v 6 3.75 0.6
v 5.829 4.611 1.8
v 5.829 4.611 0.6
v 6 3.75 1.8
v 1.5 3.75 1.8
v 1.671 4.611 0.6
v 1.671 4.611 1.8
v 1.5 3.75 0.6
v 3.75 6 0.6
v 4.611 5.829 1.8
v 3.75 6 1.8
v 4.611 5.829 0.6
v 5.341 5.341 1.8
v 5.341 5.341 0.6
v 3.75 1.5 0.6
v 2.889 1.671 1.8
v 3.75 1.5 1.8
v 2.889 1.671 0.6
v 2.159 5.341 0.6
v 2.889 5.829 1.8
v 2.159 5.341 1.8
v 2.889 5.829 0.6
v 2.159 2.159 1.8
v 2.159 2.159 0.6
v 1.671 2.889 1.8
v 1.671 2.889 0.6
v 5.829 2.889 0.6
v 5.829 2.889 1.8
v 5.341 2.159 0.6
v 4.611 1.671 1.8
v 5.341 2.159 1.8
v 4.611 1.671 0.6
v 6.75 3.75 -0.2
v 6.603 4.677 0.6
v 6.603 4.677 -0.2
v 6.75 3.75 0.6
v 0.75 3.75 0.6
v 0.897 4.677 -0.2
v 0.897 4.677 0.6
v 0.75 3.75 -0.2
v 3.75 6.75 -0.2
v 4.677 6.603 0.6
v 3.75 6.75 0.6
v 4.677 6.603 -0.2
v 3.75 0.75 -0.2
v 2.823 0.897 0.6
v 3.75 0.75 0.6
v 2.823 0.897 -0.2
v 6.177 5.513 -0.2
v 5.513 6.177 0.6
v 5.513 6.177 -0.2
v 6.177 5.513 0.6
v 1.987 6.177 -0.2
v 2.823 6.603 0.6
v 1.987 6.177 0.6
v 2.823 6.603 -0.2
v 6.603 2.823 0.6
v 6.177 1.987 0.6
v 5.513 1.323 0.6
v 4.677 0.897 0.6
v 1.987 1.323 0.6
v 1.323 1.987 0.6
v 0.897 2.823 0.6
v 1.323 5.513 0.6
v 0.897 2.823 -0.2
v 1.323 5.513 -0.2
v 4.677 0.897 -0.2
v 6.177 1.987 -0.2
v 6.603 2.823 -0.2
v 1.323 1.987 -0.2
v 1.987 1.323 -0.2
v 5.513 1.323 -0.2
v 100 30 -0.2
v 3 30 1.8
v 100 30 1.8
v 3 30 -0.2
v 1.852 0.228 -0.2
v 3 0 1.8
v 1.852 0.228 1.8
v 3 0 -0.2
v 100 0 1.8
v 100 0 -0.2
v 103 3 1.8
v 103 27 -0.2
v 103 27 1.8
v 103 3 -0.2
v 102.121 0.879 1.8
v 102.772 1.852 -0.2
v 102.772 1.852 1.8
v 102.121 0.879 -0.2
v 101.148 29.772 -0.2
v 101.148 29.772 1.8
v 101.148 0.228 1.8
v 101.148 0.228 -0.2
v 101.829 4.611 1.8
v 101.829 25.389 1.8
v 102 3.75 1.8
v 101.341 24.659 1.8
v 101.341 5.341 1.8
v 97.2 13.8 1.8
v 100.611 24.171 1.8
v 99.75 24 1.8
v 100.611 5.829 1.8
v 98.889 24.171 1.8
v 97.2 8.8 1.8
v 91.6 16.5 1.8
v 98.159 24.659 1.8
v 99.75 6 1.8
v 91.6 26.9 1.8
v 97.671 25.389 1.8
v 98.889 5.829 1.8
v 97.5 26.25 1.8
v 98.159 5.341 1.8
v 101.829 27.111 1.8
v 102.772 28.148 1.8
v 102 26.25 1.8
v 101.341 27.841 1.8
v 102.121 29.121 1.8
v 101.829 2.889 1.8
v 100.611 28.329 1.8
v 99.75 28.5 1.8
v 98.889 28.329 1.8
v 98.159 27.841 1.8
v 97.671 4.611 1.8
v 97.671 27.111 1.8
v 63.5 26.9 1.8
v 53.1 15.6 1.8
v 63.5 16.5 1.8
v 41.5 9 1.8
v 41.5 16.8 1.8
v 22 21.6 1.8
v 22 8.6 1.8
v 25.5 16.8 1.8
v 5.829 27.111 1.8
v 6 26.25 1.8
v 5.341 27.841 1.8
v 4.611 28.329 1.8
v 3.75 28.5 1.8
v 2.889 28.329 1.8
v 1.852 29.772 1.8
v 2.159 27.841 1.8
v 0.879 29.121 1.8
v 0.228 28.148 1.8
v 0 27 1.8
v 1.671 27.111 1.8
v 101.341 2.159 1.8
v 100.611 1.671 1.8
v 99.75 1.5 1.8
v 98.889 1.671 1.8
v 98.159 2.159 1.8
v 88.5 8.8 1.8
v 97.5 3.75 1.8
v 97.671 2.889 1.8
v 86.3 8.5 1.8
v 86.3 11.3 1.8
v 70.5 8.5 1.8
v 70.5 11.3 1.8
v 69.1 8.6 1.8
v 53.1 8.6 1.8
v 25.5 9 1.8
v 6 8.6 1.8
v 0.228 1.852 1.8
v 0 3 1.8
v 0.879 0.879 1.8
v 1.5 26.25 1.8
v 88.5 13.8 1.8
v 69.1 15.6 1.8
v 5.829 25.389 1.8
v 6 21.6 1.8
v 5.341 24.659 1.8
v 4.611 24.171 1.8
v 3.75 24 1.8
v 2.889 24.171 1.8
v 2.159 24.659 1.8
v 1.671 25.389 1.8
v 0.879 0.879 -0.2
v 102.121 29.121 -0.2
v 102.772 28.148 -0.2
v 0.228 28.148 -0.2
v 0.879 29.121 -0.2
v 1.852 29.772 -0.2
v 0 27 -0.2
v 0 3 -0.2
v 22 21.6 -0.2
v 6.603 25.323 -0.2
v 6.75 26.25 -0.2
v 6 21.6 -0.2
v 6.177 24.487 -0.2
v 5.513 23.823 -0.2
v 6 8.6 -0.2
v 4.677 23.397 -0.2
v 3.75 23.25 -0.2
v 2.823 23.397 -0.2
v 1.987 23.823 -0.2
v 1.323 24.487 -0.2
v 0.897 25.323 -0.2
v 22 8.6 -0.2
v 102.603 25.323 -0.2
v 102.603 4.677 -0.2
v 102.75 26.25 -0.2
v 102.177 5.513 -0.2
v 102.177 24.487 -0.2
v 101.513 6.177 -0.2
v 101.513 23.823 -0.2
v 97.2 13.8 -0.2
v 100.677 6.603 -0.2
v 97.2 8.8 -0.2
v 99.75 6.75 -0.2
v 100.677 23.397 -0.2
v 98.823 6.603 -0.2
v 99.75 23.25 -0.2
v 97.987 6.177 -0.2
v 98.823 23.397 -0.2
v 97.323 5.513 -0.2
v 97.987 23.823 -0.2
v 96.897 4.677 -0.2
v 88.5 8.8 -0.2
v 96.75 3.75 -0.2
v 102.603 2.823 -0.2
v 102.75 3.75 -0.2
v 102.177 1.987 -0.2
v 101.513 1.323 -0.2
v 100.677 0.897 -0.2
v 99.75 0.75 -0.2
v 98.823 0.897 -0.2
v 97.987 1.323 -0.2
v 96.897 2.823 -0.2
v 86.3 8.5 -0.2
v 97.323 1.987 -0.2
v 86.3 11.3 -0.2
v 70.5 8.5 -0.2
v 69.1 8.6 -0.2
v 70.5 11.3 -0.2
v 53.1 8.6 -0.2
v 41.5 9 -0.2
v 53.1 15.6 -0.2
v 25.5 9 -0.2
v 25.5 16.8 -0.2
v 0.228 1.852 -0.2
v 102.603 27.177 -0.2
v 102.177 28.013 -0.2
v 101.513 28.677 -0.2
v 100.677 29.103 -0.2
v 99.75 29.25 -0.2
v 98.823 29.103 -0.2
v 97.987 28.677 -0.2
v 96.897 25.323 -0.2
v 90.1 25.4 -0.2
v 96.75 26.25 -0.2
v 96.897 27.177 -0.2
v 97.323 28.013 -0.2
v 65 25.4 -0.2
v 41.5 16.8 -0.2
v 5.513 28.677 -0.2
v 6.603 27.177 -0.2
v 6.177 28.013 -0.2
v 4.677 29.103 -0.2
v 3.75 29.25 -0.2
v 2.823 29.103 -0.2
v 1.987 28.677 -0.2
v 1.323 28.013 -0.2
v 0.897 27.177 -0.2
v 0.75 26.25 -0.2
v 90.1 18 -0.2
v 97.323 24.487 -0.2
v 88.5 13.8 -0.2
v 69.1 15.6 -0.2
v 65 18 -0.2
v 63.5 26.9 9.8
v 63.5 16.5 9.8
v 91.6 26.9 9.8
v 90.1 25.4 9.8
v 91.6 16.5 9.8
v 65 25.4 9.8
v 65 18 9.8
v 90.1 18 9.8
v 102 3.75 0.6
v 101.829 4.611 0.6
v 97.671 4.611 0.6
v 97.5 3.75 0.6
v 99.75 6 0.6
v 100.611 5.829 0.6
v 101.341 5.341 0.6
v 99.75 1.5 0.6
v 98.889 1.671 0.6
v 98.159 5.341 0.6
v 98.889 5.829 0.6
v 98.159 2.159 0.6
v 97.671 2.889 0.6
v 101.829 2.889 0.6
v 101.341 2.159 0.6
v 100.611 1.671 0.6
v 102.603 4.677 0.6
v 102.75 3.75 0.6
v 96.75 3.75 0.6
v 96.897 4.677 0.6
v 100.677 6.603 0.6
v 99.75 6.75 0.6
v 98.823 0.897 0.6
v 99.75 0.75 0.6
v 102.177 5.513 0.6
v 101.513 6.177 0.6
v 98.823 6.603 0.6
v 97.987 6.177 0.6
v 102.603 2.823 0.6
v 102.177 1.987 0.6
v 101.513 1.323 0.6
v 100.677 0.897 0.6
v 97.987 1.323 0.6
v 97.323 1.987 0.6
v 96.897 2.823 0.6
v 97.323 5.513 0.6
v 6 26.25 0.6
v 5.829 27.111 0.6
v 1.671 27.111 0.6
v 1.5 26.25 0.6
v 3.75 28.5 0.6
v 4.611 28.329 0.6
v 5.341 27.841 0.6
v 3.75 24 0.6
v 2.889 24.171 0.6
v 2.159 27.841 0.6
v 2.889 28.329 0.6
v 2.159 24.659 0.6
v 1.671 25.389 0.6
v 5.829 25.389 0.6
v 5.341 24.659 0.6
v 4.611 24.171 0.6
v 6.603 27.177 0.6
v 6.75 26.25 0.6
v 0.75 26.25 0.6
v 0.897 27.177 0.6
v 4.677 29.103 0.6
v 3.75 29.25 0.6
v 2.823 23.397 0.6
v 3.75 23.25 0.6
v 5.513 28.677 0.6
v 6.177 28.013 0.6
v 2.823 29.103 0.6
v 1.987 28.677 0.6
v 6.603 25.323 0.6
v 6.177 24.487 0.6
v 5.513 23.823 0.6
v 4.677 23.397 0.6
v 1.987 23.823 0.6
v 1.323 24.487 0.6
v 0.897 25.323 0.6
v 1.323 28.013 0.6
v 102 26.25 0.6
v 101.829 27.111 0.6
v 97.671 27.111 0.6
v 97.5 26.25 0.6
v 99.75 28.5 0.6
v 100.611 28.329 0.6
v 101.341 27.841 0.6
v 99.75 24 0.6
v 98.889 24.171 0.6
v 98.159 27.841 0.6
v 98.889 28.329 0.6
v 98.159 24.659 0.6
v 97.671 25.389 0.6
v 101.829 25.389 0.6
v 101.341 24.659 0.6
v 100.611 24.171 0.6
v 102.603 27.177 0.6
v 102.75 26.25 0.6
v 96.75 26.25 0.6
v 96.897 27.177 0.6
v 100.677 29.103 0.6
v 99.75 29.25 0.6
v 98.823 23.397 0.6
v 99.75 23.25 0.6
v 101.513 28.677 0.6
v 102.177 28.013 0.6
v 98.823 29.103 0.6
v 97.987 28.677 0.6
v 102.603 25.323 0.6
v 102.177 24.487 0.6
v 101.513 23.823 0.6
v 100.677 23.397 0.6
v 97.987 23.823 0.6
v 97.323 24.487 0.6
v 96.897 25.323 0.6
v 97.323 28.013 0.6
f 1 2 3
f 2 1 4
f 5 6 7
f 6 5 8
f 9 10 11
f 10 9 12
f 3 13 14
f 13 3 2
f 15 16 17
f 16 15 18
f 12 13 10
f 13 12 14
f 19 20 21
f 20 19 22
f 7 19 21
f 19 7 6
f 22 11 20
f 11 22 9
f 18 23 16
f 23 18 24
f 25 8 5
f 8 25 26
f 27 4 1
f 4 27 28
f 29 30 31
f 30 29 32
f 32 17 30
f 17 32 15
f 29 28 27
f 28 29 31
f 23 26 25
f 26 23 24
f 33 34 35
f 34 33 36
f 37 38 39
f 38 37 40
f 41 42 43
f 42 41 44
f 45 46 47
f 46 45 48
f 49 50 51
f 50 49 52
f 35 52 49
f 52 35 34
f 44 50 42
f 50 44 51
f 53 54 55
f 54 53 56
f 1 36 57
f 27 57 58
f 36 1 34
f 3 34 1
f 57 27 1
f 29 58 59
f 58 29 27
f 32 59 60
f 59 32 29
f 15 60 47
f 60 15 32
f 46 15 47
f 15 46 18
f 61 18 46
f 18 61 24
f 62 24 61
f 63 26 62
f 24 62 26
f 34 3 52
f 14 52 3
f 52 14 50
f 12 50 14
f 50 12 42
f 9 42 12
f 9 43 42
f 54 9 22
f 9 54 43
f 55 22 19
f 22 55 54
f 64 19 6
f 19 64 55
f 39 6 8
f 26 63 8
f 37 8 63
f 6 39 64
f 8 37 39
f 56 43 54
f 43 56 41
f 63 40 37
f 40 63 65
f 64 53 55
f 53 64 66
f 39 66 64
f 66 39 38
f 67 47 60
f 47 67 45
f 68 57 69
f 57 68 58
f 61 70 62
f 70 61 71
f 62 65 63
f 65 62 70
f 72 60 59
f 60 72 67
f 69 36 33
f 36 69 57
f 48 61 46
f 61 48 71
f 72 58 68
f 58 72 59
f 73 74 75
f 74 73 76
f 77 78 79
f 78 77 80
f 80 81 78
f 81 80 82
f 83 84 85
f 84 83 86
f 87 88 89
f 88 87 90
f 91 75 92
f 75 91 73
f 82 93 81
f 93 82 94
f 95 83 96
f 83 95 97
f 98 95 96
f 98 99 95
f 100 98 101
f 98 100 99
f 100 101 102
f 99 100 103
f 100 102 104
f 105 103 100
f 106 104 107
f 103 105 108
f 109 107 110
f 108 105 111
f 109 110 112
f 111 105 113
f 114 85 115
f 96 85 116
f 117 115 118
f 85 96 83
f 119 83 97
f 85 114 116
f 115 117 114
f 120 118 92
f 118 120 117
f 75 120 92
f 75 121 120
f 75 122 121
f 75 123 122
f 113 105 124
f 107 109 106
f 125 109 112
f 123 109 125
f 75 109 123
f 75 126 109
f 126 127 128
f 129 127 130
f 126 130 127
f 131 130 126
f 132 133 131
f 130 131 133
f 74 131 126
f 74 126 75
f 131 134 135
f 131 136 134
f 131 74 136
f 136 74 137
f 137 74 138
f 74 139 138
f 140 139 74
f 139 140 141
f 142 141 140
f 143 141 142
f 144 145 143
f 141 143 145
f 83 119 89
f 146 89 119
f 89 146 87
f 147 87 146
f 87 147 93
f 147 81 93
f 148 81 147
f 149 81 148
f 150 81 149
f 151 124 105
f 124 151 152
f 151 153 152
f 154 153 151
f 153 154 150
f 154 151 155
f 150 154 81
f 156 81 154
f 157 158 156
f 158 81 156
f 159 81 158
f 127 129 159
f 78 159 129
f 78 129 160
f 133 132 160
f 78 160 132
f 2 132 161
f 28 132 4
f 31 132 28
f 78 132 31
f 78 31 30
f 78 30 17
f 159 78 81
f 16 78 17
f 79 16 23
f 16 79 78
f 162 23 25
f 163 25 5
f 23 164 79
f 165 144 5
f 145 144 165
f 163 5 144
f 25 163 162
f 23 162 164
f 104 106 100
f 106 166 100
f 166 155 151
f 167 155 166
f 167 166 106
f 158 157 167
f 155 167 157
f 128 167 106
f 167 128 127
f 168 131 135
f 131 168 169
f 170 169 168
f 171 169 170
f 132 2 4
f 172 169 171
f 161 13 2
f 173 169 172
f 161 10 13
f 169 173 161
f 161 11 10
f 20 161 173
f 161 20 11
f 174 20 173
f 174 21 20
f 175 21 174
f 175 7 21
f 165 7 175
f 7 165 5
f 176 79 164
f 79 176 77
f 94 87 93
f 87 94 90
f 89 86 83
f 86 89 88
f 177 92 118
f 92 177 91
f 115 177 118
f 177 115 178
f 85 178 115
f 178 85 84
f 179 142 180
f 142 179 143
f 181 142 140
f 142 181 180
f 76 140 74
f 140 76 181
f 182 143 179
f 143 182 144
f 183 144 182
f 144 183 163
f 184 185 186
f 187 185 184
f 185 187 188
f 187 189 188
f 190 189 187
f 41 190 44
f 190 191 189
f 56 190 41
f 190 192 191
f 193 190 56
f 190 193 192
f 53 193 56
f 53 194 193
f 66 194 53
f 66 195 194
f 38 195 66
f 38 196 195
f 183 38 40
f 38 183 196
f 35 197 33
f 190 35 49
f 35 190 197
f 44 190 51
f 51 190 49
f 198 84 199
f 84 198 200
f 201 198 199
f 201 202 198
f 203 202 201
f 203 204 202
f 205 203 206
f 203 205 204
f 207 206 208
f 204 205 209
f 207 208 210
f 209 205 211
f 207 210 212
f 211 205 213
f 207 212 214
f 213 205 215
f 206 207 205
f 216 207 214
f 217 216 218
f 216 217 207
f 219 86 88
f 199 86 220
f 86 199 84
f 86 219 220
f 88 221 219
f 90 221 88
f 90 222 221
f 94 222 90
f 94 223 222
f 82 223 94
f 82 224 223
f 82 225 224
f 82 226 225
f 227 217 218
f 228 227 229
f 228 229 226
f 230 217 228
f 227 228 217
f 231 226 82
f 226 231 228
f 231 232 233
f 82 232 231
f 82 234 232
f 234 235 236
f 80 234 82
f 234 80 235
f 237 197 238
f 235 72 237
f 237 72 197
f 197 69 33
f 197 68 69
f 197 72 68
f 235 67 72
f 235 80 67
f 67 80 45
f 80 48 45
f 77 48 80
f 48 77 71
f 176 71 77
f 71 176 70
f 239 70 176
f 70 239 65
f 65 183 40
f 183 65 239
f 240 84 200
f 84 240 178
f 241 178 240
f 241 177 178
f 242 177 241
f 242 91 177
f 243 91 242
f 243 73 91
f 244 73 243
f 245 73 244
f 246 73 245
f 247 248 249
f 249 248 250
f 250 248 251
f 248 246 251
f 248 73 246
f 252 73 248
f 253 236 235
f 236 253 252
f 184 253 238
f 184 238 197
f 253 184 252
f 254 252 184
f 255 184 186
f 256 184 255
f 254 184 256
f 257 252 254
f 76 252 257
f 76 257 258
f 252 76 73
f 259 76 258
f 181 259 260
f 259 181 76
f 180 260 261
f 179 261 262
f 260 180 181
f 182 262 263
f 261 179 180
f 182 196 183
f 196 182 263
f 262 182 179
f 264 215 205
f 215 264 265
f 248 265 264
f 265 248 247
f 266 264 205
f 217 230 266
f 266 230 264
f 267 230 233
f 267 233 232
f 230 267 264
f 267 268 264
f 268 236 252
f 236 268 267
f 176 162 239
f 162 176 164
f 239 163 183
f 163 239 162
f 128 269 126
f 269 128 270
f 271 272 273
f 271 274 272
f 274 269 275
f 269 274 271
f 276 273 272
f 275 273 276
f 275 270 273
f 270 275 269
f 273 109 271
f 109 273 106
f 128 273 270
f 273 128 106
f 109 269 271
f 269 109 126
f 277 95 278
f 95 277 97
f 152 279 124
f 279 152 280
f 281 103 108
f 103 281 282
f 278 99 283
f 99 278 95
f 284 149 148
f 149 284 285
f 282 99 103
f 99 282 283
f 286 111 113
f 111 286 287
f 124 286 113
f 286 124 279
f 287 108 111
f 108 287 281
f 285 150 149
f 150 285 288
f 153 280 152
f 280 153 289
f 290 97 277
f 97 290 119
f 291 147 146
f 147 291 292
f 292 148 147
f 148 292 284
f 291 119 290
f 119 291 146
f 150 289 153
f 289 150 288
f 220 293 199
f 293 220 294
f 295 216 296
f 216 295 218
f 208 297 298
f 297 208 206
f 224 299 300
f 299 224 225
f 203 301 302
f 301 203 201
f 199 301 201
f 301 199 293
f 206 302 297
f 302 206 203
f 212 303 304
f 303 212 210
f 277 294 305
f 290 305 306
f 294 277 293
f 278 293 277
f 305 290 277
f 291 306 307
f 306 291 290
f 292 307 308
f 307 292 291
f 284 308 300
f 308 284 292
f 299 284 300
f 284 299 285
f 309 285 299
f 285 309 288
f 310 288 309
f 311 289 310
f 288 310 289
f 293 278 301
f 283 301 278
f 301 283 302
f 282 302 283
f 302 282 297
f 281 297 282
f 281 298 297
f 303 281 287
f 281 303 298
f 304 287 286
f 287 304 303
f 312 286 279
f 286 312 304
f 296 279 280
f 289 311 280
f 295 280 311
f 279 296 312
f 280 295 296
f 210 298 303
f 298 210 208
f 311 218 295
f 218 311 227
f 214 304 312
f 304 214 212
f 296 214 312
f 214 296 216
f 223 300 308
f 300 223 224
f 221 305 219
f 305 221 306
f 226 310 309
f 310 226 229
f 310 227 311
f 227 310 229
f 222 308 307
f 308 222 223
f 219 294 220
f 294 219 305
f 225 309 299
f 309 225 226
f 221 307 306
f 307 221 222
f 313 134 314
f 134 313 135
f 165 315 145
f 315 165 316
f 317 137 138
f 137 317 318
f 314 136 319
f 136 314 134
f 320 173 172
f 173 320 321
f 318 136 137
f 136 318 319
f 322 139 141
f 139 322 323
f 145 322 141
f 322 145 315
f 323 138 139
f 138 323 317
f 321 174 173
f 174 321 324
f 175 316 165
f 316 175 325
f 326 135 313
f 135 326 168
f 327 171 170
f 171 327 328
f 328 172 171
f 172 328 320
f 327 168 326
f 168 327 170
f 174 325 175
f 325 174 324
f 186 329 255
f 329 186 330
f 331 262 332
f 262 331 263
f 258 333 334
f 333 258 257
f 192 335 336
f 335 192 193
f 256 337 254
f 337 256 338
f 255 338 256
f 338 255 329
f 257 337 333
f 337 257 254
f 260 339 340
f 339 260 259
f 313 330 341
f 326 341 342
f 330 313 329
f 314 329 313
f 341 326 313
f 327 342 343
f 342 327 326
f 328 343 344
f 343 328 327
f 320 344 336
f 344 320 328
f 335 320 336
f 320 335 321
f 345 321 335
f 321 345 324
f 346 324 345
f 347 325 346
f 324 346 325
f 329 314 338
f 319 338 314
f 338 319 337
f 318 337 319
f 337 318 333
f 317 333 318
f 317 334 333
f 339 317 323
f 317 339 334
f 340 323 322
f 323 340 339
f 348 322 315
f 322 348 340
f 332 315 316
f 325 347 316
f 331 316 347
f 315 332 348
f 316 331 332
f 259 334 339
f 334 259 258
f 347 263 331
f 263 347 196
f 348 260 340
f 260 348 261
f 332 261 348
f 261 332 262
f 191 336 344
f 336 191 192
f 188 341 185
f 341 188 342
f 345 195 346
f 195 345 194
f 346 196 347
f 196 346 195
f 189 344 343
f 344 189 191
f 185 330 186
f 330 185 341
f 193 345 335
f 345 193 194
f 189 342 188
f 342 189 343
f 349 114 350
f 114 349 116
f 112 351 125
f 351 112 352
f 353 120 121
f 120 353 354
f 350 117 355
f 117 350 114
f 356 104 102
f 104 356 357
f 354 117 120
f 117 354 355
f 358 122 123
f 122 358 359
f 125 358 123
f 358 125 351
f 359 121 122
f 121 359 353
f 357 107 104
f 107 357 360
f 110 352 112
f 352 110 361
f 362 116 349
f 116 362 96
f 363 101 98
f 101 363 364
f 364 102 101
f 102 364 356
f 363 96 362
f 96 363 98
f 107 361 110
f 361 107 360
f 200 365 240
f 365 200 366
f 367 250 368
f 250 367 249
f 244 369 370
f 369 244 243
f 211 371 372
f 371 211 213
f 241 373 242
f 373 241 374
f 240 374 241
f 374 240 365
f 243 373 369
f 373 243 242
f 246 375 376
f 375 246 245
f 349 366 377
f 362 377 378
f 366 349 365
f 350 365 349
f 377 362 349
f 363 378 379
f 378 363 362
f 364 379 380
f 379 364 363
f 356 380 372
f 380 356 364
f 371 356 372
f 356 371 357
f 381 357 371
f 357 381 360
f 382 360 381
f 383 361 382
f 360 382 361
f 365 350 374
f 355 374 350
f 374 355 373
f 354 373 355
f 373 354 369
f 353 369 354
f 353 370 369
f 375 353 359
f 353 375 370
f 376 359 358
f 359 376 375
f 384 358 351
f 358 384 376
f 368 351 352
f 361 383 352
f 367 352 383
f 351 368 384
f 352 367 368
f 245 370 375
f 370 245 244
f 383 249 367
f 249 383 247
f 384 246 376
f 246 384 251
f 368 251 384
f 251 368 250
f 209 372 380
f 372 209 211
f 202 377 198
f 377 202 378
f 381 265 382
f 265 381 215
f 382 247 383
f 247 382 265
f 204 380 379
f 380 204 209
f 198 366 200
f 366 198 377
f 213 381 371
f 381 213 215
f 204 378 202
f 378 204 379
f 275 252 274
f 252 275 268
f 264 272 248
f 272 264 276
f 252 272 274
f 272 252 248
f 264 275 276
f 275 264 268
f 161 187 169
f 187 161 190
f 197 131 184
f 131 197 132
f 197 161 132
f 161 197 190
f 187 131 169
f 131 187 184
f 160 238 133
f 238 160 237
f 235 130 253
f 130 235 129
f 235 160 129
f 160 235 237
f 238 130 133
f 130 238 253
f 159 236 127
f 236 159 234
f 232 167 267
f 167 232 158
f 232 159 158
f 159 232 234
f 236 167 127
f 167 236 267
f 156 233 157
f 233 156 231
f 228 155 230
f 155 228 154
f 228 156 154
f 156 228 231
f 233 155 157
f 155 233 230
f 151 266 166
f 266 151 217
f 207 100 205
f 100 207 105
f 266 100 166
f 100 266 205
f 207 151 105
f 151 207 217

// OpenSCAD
x=103;
y=30;


module plate() {
    translate([x/2,y/2,0.8])
    minkowski() {
        cube([x-6,y-6,1],center=true);
        cylinder(h=1,r=3, center=true, $fn=16);
    }
}

module screwhole() {
    cylinder(h=6,d=4.5, center=true, $fn=16);
    
    translate([0,0,-0.4])
    cylinder(h=2,d=6, center=true, $fn=20);
}

module punchout(w,h,x,y) {
    translate([x,y,-0.3])
    cube([w,h,30]);
}

module cardext(w,h,x,y) {
    translate([x,y,-0.2])
    cube([w,h,10]);
} 

difference() {
    union() {
        plate();
        
        cardext(3+25.1,3+7.4,65-1.5,18-1.5);
    }
    
    // ide-sd-slot
    punchout(25.1,7.4,65,18);
    
    // screws
    translate([1.5+(4.5/2),1.5+(4.5/2),0])
    screwhole();
    
    translate([96+1.5+(4.5/2),1.5+(4.5/2),0])
    screwhole();

    translate([1.5+(4.5/2),22.5+1.5+(4.5/2),0])
    screwhole();

    translate([96+1.5+(4.5/2),22.5+1.5+(4.5/2),0])
    screwhole();
    
    // ethernet
    punchout(16,13,6,8.6);
    
    // keyboard
    punchout(16,7.8,25.5,9);
    
    // hdmi
    punchout(16,7,53.1,8.6);
    
    // sdcard
    punchout(15.8,2.8,70.5,8.5);
    
    // power
    punchout(8.7,5,88.5,8.8);
}
